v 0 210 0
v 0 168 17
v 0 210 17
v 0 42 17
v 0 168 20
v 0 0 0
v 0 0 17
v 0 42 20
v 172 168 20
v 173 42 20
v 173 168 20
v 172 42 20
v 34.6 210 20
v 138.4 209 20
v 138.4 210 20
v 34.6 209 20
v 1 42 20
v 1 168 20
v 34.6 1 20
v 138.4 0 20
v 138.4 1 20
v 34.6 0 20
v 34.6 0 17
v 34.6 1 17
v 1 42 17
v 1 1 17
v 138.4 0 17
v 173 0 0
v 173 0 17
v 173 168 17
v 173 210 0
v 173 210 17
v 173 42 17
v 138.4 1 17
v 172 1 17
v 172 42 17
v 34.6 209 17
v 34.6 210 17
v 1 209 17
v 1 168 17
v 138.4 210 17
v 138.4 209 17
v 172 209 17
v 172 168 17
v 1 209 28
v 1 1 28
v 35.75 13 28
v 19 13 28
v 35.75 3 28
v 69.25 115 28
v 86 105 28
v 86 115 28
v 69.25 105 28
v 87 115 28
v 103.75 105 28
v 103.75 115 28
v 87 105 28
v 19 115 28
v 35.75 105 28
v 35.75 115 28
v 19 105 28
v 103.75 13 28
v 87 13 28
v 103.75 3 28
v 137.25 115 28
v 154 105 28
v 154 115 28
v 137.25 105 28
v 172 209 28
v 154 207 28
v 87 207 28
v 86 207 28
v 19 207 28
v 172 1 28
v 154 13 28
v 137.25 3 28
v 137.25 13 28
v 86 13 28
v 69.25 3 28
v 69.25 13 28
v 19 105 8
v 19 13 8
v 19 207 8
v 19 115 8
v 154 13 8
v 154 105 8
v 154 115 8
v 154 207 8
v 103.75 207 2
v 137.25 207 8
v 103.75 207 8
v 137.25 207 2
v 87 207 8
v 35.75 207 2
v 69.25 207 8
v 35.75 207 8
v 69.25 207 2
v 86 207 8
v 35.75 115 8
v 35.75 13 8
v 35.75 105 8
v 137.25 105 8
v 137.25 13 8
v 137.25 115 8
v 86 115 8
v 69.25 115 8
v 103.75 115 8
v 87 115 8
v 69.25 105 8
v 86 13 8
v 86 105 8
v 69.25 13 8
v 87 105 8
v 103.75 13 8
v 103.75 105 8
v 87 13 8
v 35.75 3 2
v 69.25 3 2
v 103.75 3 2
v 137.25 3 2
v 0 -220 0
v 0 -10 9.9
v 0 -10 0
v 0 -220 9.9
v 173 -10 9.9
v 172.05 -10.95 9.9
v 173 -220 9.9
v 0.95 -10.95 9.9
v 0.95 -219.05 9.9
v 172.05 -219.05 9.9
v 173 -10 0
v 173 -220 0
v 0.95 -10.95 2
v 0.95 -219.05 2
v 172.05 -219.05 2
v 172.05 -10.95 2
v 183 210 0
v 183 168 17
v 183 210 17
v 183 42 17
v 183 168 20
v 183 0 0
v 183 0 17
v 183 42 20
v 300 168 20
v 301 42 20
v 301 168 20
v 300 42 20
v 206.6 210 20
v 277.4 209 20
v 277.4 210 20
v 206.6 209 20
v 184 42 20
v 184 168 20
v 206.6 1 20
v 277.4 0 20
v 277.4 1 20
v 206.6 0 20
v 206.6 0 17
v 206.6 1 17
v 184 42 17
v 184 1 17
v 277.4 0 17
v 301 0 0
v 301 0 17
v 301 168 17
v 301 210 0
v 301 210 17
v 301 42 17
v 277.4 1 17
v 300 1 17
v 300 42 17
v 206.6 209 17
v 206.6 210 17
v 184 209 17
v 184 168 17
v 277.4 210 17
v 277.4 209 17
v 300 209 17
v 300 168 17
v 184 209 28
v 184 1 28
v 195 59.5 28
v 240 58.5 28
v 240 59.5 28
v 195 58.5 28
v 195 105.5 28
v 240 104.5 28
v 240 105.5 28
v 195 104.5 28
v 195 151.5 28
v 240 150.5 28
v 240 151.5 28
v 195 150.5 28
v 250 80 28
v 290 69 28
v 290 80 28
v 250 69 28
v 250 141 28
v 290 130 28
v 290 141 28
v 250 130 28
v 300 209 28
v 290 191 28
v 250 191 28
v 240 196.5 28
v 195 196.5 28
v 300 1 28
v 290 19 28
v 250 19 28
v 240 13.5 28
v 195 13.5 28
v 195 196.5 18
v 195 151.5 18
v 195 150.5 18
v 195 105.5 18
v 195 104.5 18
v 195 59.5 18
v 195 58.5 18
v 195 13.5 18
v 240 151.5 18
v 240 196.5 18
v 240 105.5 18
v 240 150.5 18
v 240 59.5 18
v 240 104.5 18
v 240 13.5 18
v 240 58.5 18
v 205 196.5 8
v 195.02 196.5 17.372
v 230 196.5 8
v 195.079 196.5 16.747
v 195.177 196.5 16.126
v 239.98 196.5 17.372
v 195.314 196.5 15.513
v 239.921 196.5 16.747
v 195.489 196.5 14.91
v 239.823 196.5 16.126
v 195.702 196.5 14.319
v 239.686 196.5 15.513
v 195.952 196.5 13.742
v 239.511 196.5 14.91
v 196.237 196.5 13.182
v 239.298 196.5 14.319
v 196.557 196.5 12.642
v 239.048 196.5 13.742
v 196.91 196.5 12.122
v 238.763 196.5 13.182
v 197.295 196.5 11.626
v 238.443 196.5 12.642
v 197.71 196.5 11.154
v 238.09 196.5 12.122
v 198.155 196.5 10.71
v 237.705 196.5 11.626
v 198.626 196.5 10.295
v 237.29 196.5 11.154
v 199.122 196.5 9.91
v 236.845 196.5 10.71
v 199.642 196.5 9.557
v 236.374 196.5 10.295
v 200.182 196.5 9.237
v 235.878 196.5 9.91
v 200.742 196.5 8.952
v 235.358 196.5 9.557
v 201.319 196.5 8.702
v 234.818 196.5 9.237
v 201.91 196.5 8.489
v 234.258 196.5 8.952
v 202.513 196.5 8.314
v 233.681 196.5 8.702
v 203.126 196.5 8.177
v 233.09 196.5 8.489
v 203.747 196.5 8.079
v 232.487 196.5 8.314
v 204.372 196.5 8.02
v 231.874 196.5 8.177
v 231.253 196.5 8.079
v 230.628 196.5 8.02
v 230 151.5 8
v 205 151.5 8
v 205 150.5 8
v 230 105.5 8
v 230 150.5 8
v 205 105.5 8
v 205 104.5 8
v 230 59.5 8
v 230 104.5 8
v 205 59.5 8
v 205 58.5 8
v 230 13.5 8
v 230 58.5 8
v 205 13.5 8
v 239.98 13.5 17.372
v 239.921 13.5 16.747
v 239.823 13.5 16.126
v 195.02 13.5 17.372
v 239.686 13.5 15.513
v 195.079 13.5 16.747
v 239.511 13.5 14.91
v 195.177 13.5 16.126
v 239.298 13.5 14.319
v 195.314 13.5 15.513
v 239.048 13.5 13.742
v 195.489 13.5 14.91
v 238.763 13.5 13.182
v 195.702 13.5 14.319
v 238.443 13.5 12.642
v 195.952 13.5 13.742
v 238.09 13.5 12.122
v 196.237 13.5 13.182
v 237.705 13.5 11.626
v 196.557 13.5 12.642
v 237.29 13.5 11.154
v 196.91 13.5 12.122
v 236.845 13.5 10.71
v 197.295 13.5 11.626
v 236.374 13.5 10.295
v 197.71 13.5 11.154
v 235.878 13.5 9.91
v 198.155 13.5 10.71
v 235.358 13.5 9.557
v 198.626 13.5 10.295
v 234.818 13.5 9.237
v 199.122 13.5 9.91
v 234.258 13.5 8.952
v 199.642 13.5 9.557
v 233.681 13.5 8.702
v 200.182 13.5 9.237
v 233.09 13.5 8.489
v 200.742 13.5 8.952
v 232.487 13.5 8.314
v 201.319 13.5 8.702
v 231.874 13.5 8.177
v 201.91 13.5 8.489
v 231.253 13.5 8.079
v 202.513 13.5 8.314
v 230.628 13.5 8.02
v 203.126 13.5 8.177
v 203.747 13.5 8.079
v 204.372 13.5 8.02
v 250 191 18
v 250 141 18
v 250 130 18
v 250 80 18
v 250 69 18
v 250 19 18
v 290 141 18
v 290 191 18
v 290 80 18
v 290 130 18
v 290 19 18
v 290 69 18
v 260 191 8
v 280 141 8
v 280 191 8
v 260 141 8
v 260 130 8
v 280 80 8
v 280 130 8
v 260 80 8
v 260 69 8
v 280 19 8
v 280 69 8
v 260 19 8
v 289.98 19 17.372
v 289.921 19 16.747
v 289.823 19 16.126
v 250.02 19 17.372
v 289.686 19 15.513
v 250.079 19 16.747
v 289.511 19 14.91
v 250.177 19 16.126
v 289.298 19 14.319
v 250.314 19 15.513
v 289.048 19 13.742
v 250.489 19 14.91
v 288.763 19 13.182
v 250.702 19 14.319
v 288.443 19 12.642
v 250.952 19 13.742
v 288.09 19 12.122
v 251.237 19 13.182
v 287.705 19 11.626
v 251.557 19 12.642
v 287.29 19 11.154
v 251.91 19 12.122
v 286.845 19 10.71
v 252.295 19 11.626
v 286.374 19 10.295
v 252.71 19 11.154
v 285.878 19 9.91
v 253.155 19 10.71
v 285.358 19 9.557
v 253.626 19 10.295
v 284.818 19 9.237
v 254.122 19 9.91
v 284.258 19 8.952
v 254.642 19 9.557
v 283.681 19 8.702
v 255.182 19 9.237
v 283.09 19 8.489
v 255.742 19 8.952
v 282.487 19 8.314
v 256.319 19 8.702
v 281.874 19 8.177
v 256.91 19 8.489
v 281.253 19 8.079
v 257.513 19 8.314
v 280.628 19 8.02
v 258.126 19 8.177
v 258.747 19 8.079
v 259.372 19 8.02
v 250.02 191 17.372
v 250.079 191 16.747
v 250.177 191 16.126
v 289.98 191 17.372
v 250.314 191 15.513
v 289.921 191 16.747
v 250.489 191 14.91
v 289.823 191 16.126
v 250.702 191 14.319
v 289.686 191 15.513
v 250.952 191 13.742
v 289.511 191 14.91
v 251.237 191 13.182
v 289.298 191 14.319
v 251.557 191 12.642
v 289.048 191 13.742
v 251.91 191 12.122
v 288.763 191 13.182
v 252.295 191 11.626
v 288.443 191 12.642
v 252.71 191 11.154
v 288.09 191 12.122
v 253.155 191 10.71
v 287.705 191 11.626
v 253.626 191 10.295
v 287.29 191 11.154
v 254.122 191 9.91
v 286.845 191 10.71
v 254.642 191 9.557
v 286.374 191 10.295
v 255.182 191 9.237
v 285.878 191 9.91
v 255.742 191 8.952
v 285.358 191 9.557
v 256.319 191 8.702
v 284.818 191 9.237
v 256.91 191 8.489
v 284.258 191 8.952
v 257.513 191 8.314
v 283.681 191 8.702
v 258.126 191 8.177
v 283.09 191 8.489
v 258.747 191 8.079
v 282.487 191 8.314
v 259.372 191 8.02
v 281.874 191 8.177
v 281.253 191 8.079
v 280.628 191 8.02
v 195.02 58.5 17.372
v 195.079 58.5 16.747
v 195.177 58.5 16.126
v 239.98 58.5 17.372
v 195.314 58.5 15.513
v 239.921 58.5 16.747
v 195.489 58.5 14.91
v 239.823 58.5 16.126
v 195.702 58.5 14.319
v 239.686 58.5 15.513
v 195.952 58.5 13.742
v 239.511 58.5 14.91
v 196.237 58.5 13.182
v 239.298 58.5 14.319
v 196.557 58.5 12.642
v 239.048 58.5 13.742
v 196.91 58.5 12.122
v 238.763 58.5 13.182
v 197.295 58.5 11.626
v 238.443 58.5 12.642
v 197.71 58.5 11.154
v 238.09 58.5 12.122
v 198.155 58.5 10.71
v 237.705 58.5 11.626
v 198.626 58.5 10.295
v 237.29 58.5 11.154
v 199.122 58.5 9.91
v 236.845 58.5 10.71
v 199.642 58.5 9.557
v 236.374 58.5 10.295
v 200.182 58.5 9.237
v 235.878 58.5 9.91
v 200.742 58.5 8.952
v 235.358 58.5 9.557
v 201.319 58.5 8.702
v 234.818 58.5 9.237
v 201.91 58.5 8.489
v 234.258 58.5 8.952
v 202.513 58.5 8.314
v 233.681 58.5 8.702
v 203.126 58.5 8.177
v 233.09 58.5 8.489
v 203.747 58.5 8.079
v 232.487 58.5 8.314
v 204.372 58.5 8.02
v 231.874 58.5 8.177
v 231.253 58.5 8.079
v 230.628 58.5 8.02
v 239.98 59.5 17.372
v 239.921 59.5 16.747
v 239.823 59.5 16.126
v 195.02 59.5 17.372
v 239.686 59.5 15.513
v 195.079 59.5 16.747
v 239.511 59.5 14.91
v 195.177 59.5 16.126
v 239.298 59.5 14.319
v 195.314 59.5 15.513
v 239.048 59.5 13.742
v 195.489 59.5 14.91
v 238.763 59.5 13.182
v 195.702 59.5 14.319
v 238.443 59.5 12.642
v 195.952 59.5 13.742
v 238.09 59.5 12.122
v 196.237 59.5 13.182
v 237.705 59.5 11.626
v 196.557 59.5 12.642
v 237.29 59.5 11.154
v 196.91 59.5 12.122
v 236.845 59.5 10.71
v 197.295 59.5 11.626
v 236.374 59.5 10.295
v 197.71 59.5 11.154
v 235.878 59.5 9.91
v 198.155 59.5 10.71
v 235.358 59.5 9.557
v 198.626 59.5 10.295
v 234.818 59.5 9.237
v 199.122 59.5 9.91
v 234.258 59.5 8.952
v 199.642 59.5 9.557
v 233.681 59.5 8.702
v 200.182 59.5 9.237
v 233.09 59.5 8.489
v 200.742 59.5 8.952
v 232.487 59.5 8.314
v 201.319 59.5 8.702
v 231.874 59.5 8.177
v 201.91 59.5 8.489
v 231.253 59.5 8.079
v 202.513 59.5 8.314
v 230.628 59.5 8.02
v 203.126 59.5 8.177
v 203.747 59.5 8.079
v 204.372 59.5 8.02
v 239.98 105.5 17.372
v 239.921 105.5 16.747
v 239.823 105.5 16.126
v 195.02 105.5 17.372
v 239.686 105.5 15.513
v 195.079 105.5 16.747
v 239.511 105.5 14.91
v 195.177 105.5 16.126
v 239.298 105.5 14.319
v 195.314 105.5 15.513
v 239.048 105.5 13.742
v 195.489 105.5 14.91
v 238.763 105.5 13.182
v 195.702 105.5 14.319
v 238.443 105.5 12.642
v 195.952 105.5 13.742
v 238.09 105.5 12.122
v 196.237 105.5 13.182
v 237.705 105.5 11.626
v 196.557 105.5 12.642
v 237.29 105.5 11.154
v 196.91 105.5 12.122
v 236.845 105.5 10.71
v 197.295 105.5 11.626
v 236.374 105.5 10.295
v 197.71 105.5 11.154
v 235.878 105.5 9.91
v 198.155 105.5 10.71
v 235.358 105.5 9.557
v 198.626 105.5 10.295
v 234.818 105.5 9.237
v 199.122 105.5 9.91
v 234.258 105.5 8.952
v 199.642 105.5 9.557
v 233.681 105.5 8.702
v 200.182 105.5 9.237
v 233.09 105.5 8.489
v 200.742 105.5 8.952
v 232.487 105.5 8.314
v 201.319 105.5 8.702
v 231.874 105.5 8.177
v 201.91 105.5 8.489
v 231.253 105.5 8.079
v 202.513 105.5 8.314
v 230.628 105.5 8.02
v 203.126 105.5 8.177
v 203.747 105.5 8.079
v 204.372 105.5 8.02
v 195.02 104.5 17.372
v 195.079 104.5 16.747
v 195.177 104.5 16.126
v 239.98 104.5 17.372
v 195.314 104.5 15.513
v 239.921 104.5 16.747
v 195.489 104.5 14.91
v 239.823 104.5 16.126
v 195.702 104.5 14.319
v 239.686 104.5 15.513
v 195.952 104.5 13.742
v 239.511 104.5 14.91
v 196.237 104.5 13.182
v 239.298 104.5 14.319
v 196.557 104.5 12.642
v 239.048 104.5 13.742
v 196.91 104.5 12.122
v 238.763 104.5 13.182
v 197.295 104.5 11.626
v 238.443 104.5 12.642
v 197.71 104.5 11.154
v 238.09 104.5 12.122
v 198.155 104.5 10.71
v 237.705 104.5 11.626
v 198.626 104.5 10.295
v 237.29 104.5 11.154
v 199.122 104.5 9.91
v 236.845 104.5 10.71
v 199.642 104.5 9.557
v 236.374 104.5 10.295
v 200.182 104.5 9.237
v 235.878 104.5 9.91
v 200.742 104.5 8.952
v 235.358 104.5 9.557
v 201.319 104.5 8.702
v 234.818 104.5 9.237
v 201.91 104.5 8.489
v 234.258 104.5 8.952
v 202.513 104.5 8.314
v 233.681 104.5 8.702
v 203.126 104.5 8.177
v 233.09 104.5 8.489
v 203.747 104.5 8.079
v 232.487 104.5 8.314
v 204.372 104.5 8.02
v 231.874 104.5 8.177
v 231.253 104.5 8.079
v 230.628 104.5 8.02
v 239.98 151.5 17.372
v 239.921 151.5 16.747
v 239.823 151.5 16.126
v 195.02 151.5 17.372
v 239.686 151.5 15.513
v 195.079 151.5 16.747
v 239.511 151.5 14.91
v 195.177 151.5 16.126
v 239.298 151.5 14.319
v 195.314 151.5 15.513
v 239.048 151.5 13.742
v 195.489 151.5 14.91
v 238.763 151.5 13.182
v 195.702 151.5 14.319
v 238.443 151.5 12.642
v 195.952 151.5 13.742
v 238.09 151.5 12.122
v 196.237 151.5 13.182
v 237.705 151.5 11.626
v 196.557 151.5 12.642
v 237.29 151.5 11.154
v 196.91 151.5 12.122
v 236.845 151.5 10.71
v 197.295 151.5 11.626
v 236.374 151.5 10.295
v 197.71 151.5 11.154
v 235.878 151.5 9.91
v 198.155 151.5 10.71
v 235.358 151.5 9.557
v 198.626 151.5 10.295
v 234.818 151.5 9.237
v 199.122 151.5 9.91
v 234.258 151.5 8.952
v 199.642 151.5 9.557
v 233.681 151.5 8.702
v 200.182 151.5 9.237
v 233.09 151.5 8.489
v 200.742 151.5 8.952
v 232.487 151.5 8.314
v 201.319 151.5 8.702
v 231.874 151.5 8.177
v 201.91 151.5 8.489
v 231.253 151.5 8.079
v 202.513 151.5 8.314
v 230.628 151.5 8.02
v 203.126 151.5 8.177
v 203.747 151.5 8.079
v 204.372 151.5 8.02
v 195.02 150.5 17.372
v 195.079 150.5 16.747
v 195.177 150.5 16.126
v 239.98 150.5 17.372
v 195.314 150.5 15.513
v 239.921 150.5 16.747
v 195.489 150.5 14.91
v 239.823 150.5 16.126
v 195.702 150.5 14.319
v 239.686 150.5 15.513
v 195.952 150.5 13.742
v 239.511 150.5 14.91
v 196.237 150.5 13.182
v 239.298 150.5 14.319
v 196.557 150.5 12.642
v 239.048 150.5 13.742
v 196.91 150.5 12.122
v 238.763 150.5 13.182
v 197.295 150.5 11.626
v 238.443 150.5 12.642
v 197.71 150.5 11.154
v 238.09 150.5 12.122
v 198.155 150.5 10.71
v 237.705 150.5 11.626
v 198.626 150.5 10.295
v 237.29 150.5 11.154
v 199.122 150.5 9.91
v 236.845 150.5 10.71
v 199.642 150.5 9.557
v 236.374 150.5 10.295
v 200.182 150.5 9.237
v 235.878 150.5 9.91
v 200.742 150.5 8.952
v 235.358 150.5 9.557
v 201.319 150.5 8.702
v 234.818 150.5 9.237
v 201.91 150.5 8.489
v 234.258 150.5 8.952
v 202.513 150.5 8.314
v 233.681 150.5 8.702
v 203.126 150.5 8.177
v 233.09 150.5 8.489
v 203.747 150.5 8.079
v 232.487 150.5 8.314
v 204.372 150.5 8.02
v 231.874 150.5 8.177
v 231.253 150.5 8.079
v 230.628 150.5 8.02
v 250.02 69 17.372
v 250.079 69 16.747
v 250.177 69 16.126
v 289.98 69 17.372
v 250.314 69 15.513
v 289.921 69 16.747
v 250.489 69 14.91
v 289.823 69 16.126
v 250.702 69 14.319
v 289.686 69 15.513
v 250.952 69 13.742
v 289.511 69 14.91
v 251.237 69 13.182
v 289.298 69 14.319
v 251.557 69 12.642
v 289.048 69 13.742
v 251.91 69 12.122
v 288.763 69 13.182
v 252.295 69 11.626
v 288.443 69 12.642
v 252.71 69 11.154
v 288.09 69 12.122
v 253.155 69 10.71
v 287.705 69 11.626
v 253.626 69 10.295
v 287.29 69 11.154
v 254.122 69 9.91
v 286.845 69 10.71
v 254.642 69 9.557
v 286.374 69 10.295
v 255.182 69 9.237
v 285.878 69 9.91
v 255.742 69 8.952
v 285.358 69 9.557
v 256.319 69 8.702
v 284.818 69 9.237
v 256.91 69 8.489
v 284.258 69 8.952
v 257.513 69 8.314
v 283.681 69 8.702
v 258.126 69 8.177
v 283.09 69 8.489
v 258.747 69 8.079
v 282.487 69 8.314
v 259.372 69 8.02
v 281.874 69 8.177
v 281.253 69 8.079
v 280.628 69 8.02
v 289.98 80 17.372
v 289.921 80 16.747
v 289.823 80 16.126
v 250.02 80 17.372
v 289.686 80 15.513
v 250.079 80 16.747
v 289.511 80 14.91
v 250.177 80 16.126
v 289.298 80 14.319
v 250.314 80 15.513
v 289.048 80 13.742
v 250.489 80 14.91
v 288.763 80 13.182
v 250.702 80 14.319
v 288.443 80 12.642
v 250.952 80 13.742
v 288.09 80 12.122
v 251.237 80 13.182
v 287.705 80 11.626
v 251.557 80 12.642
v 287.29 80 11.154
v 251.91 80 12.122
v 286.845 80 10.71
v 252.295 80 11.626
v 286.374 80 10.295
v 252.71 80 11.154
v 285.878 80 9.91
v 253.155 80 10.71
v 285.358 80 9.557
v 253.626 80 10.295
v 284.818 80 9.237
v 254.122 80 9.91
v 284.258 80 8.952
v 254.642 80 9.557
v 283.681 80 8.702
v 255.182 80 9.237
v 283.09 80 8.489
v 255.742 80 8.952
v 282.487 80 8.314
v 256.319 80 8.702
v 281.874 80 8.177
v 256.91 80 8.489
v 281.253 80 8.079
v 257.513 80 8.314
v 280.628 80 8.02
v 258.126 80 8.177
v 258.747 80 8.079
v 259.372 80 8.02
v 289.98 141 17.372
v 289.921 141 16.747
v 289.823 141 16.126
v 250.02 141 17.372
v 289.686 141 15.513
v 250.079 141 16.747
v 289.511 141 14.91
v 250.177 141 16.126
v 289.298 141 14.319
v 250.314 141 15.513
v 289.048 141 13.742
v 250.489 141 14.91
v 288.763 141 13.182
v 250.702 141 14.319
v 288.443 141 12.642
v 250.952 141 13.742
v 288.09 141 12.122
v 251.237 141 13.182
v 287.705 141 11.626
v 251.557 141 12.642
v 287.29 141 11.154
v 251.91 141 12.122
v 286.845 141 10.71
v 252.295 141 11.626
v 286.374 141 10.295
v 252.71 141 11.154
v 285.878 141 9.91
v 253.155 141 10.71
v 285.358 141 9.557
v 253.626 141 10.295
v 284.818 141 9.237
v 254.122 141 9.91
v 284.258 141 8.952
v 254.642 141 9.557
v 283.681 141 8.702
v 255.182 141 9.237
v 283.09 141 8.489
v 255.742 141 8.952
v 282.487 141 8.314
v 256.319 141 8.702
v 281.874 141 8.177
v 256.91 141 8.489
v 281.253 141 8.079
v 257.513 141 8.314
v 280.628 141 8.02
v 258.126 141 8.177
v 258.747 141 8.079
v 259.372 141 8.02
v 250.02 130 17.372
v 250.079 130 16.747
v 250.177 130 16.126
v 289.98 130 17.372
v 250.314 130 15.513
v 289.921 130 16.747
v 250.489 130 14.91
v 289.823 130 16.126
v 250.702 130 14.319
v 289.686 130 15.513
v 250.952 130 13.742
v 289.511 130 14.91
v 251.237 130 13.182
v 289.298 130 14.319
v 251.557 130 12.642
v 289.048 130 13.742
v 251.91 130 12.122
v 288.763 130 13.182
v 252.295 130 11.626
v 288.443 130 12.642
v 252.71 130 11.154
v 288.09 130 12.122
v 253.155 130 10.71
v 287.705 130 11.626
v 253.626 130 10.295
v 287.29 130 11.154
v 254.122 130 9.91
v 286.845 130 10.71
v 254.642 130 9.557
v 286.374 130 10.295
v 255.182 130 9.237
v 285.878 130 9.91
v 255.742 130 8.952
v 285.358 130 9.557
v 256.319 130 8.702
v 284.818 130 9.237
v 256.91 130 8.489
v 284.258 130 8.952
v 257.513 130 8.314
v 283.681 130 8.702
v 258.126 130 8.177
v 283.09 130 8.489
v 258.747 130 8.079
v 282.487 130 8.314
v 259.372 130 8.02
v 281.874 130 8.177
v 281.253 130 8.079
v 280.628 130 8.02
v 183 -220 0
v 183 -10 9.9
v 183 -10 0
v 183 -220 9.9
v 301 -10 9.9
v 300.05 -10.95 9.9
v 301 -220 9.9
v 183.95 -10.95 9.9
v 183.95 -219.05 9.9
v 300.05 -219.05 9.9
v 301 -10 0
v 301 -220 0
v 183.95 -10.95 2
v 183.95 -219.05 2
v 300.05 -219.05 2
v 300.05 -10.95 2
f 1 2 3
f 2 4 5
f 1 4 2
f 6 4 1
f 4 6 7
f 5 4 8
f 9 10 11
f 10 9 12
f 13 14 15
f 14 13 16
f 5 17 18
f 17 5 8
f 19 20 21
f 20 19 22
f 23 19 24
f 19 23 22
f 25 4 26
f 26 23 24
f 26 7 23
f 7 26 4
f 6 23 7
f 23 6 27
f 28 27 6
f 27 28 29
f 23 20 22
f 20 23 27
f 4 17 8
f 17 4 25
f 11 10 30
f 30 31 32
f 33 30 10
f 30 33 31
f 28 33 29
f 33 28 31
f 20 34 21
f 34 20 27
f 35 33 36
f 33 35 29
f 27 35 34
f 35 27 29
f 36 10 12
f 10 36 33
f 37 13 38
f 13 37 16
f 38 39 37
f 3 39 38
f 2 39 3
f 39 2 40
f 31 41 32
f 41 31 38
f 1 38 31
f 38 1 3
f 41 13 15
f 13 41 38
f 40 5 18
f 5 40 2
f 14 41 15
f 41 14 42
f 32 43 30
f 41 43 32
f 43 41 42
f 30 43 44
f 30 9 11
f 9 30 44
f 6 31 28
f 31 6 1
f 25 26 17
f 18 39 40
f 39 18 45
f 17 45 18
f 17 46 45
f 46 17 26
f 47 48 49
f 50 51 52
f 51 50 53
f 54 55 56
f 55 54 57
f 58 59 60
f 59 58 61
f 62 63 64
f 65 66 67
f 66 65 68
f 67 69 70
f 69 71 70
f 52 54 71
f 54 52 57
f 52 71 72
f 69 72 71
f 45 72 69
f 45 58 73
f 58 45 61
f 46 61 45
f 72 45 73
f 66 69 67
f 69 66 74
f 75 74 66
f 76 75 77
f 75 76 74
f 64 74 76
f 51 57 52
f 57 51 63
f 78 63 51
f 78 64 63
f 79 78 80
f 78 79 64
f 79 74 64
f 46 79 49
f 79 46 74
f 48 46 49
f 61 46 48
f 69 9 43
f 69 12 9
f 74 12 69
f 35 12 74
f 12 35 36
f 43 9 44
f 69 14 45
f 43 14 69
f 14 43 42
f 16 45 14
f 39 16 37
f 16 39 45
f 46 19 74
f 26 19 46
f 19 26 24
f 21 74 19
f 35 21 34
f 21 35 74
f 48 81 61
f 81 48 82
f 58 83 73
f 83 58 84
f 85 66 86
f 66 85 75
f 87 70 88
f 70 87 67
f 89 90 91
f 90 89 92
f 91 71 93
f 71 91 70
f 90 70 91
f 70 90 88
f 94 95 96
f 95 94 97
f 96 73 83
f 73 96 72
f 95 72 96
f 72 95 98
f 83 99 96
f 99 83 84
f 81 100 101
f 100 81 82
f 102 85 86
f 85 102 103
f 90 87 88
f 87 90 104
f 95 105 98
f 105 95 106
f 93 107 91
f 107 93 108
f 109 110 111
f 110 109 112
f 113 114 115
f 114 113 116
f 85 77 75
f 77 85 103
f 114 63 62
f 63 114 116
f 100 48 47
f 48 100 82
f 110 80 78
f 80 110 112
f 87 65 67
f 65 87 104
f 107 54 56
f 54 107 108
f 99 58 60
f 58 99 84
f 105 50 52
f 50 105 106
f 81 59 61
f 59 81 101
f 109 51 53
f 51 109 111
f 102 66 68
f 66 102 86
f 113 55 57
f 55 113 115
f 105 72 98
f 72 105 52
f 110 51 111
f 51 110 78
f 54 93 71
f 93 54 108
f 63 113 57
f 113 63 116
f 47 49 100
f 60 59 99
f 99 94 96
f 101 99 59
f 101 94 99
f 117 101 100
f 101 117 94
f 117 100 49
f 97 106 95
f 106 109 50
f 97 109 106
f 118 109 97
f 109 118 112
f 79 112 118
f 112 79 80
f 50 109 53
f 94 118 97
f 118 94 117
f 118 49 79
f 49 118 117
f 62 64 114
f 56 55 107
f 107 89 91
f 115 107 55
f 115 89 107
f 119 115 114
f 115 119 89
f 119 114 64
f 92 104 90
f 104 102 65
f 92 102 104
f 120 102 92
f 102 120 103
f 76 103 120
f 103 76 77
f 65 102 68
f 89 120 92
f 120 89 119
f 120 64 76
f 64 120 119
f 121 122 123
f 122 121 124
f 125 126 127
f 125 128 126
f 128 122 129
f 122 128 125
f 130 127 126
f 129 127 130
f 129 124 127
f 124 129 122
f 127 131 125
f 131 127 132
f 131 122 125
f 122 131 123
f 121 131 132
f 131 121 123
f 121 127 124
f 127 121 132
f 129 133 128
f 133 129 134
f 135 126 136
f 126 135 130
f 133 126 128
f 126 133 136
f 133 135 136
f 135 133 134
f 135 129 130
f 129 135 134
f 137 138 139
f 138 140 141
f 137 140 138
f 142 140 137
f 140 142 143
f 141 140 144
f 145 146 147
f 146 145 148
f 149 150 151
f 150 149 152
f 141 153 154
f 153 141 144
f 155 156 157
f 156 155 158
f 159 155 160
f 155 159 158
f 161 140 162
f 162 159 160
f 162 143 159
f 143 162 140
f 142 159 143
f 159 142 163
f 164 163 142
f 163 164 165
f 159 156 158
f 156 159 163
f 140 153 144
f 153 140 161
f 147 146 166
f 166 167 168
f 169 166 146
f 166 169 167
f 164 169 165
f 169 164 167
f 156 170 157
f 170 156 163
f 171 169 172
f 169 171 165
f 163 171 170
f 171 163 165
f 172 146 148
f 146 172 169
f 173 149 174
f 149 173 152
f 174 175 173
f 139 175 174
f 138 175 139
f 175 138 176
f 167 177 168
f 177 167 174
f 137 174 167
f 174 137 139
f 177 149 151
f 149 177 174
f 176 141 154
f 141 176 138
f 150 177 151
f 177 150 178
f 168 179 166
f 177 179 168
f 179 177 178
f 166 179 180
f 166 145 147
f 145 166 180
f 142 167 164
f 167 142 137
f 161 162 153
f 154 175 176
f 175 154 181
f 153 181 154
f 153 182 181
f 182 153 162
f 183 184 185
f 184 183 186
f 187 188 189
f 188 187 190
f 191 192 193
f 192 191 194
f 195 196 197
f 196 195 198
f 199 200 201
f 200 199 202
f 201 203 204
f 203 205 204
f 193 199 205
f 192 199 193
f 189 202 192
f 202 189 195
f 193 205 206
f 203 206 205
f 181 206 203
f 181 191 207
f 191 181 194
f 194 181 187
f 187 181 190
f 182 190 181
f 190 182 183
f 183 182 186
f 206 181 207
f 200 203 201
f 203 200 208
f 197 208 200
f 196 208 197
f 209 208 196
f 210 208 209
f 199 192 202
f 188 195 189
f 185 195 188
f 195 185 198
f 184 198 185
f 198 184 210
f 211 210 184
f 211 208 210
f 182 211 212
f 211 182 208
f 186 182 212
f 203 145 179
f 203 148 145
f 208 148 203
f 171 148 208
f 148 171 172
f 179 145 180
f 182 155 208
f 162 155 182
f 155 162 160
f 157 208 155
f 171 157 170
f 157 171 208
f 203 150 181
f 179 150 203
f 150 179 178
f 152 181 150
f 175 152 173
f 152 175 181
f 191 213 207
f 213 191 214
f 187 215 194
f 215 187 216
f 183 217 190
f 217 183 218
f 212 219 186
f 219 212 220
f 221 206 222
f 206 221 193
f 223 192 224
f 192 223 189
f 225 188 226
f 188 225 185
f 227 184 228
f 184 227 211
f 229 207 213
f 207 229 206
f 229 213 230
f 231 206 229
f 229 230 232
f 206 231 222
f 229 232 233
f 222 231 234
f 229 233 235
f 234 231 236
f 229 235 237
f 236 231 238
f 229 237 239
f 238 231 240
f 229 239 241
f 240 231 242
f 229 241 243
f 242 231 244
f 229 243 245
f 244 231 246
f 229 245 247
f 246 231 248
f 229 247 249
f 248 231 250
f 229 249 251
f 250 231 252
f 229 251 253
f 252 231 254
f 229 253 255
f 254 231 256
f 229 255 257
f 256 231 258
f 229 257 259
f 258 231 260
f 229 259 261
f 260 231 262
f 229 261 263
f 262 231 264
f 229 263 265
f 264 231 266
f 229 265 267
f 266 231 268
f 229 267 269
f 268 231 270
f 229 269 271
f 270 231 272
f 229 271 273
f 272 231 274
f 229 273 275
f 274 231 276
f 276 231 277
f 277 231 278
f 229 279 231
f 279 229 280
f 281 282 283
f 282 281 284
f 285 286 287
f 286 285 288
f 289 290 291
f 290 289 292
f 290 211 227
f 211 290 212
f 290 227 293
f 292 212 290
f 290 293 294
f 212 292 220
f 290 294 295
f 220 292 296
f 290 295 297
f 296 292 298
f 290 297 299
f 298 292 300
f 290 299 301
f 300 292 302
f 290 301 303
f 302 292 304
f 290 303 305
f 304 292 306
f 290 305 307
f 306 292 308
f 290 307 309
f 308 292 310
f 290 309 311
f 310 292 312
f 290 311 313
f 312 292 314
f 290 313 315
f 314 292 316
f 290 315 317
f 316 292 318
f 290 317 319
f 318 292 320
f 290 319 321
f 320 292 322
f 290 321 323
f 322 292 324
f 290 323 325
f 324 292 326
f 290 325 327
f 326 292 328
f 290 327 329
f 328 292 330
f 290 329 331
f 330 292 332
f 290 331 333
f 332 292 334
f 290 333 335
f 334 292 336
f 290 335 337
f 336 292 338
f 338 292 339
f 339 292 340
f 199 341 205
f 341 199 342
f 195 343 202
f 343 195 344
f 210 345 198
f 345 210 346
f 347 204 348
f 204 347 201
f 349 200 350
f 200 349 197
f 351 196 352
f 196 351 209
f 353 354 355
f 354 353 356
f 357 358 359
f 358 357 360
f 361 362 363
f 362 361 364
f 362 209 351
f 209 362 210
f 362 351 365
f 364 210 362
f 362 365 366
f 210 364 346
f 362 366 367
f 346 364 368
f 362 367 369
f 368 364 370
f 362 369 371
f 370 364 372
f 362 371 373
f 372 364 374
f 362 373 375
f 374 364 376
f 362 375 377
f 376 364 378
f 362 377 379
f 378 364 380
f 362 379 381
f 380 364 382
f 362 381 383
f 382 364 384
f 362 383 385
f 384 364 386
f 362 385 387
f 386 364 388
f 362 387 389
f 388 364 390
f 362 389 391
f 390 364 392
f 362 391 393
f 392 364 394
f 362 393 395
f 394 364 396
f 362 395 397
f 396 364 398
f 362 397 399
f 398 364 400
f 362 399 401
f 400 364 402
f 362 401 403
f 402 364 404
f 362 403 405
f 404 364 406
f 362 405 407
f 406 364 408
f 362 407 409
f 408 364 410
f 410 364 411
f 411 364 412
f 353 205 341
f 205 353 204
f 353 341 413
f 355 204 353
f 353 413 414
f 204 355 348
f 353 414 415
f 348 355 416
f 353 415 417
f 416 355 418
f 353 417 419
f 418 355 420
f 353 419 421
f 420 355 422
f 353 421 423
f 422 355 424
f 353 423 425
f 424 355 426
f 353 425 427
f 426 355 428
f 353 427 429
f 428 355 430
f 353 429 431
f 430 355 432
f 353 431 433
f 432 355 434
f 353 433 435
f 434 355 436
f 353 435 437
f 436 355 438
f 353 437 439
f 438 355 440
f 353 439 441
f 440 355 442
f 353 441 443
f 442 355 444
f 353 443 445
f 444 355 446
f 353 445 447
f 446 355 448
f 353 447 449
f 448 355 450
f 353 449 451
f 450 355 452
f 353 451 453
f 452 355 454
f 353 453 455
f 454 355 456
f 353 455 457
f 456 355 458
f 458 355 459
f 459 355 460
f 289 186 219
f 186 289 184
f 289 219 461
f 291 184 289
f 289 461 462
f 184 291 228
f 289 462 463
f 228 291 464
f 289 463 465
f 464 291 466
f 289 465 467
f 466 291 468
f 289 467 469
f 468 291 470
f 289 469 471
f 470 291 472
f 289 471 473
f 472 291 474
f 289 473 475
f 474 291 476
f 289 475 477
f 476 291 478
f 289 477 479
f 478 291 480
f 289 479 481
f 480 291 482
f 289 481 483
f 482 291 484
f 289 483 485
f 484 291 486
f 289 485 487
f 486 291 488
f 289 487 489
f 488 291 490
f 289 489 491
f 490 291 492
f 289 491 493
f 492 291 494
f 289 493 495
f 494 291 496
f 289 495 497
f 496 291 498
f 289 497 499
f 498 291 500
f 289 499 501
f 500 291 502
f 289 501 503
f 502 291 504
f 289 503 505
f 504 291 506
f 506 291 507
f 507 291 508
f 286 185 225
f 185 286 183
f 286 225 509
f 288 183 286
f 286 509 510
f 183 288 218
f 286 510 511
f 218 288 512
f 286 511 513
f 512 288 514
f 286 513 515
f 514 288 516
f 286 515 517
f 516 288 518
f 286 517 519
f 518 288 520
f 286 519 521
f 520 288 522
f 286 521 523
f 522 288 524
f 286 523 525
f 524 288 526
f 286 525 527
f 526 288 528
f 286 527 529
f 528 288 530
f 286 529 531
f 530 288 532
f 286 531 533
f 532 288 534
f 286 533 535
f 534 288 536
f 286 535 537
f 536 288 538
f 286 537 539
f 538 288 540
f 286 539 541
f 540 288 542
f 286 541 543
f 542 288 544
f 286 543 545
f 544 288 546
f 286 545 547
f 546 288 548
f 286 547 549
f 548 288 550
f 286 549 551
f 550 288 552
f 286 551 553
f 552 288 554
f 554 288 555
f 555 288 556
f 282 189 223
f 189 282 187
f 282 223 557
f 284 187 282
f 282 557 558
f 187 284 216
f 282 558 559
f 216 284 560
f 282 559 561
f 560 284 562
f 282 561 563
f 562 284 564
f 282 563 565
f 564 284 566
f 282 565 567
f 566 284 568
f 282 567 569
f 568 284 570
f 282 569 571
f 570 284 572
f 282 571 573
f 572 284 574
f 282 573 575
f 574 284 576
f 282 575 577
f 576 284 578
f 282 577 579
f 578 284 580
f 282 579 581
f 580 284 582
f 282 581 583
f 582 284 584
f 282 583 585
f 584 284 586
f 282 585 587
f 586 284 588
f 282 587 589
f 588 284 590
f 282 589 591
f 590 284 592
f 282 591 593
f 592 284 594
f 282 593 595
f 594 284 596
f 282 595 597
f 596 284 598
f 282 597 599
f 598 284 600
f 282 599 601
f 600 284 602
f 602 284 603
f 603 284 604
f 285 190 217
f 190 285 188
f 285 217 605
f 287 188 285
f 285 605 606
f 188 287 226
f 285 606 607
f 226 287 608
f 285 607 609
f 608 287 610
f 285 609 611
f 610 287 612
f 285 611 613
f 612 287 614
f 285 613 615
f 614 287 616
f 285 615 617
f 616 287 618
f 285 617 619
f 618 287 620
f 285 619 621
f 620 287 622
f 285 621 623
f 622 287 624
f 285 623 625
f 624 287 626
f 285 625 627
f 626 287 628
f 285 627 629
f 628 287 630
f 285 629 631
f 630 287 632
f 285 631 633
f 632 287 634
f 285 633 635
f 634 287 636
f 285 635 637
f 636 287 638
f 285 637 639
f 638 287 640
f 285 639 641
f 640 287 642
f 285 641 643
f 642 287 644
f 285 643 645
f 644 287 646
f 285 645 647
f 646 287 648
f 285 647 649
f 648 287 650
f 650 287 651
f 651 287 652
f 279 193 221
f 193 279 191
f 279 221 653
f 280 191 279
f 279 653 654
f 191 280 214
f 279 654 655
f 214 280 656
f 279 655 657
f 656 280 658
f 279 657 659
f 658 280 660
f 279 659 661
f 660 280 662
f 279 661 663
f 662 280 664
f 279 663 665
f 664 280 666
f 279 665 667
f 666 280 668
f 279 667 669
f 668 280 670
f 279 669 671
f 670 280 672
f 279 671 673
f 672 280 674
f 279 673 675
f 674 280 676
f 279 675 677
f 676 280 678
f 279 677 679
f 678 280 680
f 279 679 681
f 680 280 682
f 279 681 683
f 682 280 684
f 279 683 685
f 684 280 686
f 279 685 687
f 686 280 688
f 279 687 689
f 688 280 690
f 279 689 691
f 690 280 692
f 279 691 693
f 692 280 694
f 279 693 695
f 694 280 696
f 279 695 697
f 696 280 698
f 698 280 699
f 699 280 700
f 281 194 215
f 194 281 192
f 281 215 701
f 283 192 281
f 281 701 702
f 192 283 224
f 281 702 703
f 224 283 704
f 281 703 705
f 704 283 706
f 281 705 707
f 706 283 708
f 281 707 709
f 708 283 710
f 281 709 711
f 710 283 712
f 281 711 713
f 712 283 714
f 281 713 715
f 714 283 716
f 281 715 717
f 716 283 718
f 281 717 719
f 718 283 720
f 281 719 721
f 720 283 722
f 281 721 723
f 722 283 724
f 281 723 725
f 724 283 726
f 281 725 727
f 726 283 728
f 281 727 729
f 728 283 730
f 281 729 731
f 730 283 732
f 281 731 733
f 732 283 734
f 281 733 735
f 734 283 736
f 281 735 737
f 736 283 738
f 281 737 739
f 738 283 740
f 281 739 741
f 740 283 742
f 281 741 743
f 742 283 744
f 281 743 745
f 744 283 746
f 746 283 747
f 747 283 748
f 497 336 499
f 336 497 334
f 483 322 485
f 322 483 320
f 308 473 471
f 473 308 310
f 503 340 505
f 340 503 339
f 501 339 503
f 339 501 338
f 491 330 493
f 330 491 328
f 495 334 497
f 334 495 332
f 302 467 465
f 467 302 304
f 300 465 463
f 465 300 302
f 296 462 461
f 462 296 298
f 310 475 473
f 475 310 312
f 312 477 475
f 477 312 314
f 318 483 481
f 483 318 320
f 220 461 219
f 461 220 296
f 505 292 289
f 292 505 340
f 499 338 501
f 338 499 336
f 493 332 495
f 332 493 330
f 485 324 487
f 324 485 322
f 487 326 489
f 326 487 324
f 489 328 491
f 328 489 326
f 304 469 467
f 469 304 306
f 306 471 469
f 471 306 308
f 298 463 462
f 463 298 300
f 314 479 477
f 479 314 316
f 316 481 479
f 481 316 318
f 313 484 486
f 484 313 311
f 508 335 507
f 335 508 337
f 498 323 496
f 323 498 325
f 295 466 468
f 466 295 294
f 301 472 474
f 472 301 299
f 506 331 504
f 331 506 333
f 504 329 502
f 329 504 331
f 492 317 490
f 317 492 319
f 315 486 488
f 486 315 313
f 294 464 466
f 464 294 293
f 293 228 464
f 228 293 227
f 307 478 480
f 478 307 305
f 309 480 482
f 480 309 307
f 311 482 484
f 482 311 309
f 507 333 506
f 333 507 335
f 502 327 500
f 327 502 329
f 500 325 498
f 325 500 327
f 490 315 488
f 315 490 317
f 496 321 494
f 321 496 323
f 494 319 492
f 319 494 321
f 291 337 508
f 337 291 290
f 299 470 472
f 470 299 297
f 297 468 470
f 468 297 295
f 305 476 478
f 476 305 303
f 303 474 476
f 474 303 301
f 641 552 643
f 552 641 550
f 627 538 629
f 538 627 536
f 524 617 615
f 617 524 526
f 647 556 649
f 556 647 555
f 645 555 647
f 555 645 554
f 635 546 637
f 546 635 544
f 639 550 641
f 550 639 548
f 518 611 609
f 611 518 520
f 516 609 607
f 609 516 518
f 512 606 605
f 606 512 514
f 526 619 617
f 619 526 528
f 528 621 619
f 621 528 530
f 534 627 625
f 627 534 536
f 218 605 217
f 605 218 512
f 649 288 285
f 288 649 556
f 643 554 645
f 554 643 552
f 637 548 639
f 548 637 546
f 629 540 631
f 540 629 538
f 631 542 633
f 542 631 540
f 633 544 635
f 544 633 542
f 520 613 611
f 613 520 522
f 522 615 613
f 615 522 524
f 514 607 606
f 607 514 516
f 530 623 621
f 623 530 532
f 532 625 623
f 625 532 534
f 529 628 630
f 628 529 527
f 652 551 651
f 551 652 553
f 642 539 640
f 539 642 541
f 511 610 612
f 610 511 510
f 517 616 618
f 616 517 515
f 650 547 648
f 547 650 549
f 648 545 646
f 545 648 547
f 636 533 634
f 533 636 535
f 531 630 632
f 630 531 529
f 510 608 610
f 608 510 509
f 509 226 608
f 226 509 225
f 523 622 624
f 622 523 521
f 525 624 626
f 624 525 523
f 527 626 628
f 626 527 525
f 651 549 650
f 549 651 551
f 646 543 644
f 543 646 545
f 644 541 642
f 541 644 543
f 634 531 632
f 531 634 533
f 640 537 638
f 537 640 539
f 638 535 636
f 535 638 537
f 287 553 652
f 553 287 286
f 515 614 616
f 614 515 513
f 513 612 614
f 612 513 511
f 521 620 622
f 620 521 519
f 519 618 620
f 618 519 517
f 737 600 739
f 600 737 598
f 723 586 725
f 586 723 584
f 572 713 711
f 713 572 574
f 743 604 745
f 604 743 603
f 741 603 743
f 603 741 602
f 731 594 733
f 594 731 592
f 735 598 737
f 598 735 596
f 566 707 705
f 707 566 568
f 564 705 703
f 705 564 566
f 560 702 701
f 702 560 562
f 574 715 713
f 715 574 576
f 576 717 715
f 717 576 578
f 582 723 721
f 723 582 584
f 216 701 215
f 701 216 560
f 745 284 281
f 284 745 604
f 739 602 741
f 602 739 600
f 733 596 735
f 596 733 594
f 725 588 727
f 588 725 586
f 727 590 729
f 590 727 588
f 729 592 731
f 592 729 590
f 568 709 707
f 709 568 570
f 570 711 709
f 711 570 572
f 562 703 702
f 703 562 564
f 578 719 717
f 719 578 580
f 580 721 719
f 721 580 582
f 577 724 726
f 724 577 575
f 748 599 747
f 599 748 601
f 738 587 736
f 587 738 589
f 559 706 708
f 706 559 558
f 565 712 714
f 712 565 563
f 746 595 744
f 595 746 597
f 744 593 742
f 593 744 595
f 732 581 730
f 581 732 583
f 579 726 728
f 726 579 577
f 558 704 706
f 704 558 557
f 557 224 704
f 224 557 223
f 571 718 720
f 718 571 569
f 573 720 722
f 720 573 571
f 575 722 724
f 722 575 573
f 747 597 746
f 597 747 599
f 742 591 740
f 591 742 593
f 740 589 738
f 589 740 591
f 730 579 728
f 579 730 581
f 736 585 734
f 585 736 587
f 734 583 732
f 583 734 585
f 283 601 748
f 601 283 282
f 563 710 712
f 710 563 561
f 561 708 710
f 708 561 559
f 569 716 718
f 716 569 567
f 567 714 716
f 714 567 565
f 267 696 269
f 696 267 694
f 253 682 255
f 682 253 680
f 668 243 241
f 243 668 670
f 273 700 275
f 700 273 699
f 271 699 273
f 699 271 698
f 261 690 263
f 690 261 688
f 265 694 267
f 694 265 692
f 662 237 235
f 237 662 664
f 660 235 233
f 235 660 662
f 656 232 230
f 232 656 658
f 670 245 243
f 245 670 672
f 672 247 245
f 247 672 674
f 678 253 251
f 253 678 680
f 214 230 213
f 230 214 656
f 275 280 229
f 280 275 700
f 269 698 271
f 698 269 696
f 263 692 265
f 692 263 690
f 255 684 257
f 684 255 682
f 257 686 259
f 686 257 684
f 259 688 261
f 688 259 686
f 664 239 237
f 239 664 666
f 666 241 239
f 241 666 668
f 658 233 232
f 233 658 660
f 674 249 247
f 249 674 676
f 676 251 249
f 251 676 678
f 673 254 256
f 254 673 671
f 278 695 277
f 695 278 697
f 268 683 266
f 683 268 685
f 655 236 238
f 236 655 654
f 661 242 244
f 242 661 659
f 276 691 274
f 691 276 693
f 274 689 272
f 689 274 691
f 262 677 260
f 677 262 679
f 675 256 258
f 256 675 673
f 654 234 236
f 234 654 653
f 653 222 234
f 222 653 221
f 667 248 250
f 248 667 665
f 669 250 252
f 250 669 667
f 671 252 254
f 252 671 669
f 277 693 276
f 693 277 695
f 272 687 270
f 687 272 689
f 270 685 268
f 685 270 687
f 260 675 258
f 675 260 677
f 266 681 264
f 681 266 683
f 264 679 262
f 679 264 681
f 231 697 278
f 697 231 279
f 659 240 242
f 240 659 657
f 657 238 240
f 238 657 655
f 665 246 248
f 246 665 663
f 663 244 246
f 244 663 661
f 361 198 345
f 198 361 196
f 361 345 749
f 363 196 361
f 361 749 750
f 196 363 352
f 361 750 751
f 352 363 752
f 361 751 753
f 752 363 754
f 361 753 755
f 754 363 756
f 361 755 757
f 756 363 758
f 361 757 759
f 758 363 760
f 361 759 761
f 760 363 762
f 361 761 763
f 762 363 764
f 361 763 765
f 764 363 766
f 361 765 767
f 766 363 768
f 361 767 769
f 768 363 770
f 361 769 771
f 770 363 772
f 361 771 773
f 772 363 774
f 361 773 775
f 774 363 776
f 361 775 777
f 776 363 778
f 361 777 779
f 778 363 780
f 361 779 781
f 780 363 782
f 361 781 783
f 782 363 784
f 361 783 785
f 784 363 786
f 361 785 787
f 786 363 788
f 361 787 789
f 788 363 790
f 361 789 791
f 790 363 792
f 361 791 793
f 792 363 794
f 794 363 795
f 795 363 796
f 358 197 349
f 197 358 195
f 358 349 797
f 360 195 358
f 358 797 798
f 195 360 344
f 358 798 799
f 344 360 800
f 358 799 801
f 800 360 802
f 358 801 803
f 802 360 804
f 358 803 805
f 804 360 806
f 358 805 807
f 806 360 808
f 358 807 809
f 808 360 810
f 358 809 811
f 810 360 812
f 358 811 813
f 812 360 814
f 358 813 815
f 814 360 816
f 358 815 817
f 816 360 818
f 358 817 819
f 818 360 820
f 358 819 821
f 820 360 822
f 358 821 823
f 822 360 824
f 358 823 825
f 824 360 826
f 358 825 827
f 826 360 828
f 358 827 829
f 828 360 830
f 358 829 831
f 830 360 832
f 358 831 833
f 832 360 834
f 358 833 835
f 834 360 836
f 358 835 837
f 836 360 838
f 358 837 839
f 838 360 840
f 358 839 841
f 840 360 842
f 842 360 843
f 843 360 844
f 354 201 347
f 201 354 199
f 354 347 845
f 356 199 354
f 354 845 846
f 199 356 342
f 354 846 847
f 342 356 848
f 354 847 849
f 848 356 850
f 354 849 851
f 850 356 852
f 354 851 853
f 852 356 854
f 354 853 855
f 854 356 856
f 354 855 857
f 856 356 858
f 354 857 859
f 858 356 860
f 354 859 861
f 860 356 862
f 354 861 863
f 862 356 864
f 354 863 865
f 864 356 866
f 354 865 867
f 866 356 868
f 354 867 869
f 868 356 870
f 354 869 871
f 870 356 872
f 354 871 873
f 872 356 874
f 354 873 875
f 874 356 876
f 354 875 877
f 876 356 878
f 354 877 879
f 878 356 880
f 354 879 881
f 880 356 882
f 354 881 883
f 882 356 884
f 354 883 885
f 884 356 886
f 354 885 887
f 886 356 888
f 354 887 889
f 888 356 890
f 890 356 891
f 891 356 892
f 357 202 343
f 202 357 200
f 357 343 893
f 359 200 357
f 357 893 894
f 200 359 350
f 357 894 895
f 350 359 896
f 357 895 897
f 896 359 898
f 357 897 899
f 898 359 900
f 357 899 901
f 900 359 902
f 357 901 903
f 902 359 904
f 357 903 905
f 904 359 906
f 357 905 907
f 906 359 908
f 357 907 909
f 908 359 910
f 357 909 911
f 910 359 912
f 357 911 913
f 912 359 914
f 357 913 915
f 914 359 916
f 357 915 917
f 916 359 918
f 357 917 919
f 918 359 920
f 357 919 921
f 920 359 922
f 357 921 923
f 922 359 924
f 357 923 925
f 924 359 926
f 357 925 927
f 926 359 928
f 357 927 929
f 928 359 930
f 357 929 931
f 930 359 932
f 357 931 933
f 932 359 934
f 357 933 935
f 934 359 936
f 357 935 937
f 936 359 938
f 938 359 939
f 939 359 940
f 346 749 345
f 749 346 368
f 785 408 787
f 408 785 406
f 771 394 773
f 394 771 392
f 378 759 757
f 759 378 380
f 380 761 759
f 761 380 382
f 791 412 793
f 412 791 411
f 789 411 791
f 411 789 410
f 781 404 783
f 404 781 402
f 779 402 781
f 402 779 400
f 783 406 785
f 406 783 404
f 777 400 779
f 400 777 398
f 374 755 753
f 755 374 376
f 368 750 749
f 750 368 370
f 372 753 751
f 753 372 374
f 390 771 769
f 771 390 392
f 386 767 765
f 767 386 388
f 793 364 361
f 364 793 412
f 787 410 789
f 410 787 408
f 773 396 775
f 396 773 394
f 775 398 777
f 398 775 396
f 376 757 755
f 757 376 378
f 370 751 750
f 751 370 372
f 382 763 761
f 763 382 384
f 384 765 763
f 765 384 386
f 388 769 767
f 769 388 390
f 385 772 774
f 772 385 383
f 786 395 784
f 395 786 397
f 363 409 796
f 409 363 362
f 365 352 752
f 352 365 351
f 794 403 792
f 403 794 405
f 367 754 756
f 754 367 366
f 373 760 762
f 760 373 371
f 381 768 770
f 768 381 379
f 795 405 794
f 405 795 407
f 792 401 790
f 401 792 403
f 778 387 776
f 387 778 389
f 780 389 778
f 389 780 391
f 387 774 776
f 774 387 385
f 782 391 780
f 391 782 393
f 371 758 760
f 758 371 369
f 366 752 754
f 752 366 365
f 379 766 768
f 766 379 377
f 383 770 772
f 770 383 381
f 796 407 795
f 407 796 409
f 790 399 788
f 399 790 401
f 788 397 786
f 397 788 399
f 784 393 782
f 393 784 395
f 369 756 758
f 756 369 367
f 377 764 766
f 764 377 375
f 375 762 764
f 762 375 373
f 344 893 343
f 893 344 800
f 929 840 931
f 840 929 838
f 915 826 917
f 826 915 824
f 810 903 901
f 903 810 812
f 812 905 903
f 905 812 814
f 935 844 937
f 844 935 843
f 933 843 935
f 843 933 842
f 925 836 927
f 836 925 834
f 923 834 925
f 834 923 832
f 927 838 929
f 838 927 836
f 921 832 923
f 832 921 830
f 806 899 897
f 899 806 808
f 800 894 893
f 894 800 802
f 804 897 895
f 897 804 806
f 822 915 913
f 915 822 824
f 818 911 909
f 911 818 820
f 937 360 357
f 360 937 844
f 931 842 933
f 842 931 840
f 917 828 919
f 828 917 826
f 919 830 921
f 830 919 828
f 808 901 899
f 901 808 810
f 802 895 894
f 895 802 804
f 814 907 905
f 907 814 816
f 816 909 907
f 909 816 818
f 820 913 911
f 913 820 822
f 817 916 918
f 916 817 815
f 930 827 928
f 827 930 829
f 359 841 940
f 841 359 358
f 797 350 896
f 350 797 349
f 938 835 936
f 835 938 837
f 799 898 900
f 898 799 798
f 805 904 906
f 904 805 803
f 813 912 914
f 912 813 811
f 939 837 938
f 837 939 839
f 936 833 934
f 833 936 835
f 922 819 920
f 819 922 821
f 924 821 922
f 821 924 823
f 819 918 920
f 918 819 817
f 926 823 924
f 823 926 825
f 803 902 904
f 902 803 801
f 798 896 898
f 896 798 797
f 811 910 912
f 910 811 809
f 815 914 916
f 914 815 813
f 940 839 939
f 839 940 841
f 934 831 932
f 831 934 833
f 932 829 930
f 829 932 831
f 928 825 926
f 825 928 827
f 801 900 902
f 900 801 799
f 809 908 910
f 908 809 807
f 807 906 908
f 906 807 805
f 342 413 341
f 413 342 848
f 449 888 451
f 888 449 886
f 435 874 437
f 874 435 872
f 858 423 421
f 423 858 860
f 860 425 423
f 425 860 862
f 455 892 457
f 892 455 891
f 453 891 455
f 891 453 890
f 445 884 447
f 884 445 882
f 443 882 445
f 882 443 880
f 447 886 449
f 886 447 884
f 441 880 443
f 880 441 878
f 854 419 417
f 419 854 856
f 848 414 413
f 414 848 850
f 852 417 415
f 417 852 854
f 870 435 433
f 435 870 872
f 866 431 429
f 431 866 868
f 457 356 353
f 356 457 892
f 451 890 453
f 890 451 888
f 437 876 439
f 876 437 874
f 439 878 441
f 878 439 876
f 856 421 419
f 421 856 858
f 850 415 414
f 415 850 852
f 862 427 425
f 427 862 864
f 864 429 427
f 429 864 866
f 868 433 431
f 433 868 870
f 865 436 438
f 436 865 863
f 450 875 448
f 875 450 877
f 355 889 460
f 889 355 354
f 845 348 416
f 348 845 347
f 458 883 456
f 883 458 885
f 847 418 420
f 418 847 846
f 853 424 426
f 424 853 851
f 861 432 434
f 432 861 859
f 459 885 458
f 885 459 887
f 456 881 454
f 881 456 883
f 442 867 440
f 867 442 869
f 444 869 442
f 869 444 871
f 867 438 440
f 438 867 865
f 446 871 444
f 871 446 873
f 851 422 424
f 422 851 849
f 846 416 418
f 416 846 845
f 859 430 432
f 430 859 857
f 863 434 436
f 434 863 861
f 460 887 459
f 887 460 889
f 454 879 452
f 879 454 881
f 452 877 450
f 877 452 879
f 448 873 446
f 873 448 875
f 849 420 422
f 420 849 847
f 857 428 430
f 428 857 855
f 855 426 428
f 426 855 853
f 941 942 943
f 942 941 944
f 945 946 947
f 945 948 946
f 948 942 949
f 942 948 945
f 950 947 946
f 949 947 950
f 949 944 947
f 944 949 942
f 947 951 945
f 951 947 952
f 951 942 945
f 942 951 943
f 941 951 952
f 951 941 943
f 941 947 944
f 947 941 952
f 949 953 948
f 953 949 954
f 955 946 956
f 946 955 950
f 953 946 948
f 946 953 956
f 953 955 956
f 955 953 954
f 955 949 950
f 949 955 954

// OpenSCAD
include <boardgame_insert_toolkit_lib.scad>;


// This is a working example of the Boardgame Insert Toolkit used to create a two box insert
// for the Z-Man game, Pandemic. It is designed for a printer that can print 170mm x 210mm x 28mm.
// See the one box version for an example of a design for larger printers.
// 

data =
[
    [   "card box",
        [
            [ "box_dimensions",                             [173.0, 210.0, 28.0] ],                       // float f -- default:[ 100, 100, 100]
            [ "enabled",                                    true ],

            [   "components",
                [
                    [   "cards",
                        [
                            ["type",                        "cards"],                   // "cards" | "tokens" | "chit_stack" -- default: "generic"
                            ["compartment_size",            [ 67.0, 92.0, 20.0] ],      // float f -- default:[ 10, 10, 10]
                            ["num_compartments",            [2, 2] ],                   // int i -- default: [1, 1]
                            ["enabled",                     true ],                     // true | false
                            ["rotation",                    0 ],                        // 0 | 1 | -1
                         //   ["position",                    ["max","max"]]
                        ]
                    ],
                ]
            ]
        ]
    ],

    [   "chits box",
        [
            [ "box_dimensions",                             [118.0, 210.0, 28.0] ],                       // float f -- default:[ 100, 100, 100]
            [ "enabled",                                    true ],

            [   "components",
                [
                    [   "disease markers",
                        [
                            ["enabled",                     true ],                     // true | false
                            ["type",                        "tokens"],
                            ["compartment_size",            [ 45.0, 45.0, 20.0] ],
                            ["num_compartments",            [1, 4] ],
                            ["position",                    [10, "center"] ],
                        ]
                    ],

                    [   "other bits",
                        [
                            ["enabled",                     true ],                     // true | false
                            ["type",                        "tokens"],
                            ["compartment_size",            [ 40.0, 50.0, 20.0] ],
                            ["num_compartments",            [1, 3] ],
                            ["position",                    [65, "center"] ],
                            ["extra_spacing",               [0, 10] ]
                        ]
                    ]
                ]
            ]
        ]
    ]
];


// for printing control.
b_print_lid = true;
b_print_box = true;

//b_print_box = "card box"; // isolate one box to print

MakeAll();
